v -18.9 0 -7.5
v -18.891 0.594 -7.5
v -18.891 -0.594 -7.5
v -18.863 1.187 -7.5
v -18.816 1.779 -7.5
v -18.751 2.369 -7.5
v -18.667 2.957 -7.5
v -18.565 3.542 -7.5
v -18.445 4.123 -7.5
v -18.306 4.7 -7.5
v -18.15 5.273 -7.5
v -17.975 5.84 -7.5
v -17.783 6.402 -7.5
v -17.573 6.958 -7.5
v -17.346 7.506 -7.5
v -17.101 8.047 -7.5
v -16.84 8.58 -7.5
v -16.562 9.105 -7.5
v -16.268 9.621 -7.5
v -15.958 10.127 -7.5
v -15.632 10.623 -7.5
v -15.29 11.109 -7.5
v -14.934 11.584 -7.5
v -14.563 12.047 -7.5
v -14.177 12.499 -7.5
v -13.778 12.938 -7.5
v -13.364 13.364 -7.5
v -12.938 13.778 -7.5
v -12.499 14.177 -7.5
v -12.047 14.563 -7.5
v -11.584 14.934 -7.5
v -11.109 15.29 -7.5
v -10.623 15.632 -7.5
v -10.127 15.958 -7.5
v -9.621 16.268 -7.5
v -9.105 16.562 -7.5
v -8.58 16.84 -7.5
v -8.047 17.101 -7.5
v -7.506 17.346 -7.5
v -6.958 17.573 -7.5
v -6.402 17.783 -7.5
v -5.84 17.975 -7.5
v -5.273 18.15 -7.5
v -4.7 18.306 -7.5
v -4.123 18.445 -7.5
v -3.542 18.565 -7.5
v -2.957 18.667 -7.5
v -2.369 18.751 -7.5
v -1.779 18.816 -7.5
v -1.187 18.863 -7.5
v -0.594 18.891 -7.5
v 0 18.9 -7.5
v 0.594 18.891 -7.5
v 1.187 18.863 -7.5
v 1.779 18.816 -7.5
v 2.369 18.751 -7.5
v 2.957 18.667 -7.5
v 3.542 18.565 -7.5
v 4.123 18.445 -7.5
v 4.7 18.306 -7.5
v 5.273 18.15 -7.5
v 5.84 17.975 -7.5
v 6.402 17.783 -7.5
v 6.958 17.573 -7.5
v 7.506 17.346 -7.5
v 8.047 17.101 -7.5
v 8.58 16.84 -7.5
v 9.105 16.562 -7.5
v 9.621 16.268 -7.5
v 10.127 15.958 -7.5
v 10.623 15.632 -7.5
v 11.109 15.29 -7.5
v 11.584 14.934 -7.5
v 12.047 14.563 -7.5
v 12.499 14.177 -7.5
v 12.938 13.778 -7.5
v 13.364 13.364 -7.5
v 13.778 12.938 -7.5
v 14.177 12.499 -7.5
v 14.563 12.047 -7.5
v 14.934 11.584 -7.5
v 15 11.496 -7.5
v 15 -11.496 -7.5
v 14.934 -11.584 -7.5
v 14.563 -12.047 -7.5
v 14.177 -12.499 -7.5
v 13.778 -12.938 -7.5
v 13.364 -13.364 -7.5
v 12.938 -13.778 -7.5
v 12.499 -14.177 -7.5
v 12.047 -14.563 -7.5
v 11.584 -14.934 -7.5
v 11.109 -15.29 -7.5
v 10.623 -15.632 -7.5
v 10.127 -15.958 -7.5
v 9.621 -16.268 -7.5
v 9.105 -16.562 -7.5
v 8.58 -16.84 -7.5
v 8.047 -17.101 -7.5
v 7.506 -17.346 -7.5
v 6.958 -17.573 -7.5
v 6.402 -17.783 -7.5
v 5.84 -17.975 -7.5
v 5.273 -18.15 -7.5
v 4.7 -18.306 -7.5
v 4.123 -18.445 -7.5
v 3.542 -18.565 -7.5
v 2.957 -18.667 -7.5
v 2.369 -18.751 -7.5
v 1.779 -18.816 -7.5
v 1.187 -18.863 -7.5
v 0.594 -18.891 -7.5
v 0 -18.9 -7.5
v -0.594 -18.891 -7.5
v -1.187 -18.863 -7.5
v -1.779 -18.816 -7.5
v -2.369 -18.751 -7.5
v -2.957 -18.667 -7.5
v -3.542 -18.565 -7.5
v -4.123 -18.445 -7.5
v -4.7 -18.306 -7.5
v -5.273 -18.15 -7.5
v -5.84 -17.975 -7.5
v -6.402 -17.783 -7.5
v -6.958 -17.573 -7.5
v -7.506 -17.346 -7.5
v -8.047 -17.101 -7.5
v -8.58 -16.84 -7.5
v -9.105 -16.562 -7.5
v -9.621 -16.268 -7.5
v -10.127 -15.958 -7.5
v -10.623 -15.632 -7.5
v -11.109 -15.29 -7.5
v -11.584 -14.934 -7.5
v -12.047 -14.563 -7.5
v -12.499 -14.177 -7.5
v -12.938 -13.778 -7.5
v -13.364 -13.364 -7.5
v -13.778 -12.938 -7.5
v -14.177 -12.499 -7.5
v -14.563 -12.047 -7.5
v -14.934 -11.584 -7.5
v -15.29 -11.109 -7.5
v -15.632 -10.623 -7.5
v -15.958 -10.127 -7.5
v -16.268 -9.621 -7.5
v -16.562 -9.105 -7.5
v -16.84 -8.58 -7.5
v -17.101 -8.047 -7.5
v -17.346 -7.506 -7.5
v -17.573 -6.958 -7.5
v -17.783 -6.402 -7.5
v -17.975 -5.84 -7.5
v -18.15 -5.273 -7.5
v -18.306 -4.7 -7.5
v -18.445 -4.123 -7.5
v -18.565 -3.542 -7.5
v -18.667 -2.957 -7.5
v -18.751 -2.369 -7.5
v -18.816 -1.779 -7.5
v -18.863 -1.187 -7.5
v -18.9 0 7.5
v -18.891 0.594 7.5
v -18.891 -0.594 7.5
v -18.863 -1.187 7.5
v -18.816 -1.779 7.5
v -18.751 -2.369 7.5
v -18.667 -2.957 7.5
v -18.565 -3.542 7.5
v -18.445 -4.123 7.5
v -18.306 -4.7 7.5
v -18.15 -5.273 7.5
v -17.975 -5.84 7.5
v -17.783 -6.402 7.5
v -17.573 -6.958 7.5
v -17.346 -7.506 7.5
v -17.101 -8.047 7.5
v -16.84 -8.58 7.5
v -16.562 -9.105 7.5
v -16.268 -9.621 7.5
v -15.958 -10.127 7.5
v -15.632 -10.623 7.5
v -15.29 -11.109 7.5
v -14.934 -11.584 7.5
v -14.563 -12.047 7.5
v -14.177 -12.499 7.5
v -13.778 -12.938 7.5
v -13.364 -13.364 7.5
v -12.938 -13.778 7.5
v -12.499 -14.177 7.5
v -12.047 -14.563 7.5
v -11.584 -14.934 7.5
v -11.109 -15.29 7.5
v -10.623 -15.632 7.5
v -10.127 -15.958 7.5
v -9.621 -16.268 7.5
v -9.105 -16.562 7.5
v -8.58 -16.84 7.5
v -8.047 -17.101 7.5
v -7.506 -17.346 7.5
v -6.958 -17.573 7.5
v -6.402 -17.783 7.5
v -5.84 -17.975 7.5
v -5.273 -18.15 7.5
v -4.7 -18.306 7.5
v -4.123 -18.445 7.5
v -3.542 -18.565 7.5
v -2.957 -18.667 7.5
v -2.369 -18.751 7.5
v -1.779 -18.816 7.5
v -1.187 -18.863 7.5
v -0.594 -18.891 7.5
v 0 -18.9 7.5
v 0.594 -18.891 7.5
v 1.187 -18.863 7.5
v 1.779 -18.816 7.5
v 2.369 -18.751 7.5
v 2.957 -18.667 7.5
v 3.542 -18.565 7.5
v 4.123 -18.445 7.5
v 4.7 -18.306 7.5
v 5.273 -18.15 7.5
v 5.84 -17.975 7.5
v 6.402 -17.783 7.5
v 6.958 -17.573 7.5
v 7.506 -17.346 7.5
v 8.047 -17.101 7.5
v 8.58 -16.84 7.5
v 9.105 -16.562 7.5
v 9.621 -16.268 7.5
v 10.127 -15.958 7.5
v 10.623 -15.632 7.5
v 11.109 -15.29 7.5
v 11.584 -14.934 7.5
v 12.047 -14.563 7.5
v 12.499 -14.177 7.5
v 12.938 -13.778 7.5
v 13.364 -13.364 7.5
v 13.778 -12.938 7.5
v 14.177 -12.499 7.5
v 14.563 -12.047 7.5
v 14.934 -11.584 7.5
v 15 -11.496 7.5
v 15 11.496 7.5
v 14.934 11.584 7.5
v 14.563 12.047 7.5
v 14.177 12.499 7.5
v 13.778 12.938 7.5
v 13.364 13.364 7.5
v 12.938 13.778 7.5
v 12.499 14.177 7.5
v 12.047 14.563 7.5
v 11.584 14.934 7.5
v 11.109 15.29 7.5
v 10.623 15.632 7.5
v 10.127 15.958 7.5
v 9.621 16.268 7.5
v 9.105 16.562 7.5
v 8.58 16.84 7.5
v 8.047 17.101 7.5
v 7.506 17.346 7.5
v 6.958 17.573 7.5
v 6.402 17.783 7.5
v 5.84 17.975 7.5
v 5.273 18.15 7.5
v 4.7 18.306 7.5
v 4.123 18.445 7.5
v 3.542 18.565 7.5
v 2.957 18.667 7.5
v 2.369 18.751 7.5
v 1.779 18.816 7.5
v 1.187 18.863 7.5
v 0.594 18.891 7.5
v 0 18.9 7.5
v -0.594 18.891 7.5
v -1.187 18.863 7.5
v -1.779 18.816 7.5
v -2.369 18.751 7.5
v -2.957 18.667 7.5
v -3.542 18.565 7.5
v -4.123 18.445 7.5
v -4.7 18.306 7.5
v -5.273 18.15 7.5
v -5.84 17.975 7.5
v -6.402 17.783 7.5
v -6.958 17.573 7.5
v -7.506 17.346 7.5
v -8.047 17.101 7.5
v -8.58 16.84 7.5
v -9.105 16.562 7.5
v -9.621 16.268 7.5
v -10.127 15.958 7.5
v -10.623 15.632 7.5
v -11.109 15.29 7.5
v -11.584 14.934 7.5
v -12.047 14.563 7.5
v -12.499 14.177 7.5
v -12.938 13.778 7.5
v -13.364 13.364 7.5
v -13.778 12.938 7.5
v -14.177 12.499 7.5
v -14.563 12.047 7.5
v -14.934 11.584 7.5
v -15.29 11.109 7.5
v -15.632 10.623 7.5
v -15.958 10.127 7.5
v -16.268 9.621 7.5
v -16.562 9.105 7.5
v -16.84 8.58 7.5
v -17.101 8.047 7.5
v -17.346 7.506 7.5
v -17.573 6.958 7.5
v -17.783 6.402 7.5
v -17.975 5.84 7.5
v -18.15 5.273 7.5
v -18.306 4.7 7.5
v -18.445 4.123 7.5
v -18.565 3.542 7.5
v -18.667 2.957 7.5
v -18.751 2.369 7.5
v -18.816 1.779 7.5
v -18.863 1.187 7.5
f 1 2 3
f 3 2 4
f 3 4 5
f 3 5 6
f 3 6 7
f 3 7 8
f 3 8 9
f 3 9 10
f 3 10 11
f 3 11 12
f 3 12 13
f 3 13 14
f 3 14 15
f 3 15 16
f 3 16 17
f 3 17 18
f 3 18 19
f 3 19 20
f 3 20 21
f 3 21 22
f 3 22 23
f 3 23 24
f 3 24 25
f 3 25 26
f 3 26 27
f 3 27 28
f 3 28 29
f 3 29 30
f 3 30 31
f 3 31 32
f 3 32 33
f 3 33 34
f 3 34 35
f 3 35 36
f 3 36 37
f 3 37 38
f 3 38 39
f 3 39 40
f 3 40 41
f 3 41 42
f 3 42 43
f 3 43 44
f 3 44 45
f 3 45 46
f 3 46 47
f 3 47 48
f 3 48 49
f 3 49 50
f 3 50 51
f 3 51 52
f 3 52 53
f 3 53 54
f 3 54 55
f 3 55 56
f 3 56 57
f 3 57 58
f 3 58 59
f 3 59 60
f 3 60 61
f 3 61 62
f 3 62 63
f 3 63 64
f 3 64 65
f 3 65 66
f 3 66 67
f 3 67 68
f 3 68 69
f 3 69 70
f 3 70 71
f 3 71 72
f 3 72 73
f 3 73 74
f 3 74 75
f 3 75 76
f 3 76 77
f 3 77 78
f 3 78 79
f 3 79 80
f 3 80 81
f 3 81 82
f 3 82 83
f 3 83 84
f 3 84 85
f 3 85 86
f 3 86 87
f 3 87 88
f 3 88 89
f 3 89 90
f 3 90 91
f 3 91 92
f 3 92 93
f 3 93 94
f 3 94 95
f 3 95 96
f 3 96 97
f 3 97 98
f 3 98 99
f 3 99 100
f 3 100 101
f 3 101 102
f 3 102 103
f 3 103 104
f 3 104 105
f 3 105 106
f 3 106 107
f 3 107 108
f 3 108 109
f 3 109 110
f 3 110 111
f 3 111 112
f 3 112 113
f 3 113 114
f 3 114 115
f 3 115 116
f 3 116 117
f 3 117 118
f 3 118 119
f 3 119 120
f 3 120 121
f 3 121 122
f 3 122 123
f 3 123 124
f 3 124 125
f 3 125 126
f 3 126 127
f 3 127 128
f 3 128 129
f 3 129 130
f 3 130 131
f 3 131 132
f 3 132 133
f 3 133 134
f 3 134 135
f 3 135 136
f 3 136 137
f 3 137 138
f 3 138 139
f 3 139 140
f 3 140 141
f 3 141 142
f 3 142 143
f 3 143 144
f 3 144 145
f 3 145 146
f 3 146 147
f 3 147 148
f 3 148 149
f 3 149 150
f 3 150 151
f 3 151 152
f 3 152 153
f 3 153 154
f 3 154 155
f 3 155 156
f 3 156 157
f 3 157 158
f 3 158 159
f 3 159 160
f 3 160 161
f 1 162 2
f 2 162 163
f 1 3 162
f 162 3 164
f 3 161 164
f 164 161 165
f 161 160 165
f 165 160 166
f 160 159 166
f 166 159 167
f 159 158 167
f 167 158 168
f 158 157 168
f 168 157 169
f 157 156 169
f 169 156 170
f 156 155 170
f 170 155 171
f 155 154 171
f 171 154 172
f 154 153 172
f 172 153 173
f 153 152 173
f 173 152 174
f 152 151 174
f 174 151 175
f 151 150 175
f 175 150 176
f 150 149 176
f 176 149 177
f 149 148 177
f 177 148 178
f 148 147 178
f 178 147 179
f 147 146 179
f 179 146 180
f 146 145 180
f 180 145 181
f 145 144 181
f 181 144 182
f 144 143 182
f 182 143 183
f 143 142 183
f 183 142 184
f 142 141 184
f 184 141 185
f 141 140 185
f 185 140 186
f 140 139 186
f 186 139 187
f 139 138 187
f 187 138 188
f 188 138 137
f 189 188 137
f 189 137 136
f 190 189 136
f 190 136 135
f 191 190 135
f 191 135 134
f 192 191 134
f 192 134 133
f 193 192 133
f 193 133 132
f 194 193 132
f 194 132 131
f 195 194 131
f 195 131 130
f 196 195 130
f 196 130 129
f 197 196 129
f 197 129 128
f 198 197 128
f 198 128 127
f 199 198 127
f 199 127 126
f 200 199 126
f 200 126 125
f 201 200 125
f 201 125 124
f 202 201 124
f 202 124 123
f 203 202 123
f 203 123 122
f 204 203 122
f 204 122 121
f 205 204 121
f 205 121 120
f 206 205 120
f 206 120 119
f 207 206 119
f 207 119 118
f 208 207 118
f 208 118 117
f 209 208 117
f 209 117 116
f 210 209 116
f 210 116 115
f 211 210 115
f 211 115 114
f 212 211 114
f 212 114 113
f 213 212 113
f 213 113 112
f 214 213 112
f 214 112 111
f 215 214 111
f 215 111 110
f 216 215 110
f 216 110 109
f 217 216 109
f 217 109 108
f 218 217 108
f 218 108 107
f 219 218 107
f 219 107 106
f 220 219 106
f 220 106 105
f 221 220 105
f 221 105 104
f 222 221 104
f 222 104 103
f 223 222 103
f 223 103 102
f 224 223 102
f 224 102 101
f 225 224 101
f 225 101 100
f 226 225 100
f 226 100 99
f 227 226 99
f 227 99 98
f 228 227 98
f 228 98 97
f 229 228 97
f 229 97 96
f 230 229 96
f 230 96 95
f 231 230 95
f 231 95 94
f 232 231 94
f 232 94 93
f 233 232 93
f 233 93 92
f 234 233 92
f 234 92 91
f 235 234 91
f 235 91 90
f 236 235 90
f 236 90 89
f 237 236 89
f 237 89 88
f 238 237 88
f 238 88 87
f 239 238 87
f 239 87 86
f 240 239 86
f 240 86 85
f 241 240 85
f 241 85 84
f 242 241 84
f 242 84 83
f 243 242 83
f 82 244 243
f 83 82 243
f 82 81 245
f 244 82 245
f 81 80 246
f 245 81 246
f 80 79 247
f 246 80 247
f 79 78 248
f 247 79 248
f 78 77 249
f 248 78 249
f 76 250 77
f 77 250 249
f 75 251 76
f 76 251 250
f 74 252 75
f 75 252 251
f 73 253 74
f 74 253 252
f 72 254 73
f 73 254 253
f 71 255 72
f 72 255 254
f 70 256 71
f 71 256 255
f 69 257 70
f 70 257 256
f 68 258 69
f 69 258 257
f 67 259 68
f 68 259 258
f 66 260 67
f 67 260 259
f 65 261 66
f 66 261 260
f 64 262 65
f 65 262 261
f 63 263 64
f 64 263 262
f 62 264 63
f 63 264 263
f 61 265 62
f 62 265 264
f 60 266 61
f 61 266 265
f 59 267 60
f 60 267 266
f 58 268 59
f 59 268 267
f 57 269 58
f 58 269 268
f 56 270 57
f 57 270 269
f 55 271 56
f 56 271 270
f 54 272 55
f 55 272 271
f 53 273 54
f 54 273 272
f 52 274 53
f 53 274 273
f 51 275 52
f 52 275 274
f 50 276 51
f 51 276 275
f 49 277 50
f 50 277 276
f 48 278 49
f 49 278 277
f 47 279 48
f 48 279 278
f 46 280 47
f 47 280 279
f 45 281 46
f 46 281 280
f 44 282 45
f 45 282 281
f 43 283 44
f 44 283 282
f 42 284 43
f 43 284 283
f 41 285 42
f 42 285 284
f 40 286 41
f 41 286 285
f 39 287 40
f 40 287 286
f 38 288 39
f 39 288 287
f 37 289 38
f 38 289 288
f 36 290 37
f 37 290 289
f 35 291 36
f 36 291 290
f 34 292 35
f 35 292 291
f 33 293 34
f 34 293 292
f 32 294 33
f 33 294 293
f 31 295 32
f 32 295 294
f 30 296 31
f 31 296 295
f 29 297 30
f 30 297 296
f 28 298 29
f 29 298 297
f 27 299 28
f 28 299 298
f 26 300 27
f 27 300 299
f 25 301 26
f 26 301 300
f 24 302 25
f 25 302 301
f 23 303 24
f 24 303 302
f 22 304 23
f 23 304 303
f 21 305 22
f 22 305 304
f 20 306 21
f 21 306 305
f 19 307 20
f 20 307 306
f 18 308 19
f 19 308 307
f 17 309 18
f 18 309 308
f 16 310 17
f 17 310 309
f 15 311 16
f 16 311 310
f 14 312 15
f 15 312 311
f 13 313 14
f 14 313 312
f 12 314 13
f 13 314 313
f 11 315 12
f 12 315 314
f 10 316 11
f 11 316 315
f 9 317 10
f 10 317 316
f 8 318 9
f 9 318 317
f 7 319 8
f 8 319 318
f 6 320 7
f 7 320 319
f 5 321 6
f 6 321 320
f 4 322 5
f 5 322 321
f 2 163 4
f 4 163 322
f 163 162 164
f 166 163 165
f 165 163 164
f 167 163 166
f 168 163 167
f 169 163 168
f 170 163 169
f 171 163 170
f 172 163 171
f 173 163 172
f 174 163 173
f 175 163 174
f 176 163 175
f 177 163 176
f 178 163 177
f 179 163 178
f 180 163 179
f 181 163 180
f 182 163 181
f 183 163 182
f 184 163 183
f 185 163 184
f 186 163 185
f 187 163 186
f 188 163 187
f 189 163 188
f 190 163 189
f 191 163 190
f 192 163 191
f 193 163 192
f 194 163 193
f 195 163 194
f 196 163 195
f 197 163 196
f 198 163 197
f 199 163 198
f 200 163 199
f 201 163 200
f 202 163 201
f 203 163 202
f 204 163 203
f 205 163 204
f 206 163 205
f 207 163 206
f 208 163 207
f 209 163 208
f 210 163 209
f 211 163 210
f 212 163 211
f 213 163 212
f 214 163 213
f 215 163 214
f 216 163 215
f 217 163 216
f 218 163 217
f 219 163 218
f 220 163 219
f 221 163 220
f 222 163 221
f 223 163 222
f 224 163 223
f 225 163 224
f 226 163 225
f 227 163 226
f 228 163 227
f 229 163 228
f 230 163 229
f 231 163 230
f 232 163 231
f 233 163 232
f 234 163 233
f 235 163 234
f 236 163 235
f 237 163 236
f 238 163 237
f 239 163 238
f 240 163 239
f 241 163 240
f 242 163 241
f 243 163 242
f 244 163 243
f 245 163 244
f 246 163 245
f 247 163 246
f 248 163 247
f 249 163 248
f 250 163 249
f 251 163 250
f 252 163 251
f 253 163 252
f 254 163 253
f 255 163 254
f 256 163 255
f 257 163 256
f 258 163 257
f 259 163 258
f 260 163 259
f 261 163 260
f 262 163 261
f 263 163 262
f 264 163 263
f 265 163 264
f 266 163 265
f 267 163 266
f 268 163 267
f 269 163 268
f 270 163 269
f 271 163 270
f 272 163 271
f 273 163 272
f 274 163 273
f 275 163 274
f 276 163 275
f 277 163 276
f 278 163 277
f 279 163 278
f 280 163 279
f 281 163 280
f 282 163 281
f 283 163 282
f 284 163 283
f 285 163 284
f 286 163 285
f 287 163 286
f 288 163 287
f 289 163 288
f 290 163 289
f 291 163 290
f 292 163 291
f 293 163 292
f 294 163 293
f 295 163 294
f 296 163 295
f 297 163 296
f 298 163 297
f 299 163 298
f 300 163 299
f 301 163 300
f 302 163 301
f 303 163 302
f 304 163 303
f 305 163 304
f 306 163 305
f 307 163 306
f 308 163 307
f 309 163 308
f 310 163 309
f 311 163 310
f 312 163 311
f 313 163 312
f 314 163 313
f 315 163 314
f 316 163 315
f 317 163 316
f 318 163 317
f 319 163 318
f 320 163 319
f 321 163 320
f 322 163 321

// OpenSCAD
module tube(){
    translate([0,0,-30])difference(){
        cylinder(r=41/2, h=100, center = true, $fn=200);
        cylinder(r=38/2, h=101, center = true, $fn=200);

        translate([0,10,40])difference(){
            translate([0,40,-40])rotate([45,0,0])cube([41,40,100], center = true);
            translate([0,10,1.4])cube([42,60,40], center = true);    
        }
    }
}



module plug(){
    difference(){
        cylinder(r=37.8/2, h=15, center = true, $fn=200);
        translate([35,0,0])cube([40,40,40], center = true);    
    }
}



//tube();
plug();
